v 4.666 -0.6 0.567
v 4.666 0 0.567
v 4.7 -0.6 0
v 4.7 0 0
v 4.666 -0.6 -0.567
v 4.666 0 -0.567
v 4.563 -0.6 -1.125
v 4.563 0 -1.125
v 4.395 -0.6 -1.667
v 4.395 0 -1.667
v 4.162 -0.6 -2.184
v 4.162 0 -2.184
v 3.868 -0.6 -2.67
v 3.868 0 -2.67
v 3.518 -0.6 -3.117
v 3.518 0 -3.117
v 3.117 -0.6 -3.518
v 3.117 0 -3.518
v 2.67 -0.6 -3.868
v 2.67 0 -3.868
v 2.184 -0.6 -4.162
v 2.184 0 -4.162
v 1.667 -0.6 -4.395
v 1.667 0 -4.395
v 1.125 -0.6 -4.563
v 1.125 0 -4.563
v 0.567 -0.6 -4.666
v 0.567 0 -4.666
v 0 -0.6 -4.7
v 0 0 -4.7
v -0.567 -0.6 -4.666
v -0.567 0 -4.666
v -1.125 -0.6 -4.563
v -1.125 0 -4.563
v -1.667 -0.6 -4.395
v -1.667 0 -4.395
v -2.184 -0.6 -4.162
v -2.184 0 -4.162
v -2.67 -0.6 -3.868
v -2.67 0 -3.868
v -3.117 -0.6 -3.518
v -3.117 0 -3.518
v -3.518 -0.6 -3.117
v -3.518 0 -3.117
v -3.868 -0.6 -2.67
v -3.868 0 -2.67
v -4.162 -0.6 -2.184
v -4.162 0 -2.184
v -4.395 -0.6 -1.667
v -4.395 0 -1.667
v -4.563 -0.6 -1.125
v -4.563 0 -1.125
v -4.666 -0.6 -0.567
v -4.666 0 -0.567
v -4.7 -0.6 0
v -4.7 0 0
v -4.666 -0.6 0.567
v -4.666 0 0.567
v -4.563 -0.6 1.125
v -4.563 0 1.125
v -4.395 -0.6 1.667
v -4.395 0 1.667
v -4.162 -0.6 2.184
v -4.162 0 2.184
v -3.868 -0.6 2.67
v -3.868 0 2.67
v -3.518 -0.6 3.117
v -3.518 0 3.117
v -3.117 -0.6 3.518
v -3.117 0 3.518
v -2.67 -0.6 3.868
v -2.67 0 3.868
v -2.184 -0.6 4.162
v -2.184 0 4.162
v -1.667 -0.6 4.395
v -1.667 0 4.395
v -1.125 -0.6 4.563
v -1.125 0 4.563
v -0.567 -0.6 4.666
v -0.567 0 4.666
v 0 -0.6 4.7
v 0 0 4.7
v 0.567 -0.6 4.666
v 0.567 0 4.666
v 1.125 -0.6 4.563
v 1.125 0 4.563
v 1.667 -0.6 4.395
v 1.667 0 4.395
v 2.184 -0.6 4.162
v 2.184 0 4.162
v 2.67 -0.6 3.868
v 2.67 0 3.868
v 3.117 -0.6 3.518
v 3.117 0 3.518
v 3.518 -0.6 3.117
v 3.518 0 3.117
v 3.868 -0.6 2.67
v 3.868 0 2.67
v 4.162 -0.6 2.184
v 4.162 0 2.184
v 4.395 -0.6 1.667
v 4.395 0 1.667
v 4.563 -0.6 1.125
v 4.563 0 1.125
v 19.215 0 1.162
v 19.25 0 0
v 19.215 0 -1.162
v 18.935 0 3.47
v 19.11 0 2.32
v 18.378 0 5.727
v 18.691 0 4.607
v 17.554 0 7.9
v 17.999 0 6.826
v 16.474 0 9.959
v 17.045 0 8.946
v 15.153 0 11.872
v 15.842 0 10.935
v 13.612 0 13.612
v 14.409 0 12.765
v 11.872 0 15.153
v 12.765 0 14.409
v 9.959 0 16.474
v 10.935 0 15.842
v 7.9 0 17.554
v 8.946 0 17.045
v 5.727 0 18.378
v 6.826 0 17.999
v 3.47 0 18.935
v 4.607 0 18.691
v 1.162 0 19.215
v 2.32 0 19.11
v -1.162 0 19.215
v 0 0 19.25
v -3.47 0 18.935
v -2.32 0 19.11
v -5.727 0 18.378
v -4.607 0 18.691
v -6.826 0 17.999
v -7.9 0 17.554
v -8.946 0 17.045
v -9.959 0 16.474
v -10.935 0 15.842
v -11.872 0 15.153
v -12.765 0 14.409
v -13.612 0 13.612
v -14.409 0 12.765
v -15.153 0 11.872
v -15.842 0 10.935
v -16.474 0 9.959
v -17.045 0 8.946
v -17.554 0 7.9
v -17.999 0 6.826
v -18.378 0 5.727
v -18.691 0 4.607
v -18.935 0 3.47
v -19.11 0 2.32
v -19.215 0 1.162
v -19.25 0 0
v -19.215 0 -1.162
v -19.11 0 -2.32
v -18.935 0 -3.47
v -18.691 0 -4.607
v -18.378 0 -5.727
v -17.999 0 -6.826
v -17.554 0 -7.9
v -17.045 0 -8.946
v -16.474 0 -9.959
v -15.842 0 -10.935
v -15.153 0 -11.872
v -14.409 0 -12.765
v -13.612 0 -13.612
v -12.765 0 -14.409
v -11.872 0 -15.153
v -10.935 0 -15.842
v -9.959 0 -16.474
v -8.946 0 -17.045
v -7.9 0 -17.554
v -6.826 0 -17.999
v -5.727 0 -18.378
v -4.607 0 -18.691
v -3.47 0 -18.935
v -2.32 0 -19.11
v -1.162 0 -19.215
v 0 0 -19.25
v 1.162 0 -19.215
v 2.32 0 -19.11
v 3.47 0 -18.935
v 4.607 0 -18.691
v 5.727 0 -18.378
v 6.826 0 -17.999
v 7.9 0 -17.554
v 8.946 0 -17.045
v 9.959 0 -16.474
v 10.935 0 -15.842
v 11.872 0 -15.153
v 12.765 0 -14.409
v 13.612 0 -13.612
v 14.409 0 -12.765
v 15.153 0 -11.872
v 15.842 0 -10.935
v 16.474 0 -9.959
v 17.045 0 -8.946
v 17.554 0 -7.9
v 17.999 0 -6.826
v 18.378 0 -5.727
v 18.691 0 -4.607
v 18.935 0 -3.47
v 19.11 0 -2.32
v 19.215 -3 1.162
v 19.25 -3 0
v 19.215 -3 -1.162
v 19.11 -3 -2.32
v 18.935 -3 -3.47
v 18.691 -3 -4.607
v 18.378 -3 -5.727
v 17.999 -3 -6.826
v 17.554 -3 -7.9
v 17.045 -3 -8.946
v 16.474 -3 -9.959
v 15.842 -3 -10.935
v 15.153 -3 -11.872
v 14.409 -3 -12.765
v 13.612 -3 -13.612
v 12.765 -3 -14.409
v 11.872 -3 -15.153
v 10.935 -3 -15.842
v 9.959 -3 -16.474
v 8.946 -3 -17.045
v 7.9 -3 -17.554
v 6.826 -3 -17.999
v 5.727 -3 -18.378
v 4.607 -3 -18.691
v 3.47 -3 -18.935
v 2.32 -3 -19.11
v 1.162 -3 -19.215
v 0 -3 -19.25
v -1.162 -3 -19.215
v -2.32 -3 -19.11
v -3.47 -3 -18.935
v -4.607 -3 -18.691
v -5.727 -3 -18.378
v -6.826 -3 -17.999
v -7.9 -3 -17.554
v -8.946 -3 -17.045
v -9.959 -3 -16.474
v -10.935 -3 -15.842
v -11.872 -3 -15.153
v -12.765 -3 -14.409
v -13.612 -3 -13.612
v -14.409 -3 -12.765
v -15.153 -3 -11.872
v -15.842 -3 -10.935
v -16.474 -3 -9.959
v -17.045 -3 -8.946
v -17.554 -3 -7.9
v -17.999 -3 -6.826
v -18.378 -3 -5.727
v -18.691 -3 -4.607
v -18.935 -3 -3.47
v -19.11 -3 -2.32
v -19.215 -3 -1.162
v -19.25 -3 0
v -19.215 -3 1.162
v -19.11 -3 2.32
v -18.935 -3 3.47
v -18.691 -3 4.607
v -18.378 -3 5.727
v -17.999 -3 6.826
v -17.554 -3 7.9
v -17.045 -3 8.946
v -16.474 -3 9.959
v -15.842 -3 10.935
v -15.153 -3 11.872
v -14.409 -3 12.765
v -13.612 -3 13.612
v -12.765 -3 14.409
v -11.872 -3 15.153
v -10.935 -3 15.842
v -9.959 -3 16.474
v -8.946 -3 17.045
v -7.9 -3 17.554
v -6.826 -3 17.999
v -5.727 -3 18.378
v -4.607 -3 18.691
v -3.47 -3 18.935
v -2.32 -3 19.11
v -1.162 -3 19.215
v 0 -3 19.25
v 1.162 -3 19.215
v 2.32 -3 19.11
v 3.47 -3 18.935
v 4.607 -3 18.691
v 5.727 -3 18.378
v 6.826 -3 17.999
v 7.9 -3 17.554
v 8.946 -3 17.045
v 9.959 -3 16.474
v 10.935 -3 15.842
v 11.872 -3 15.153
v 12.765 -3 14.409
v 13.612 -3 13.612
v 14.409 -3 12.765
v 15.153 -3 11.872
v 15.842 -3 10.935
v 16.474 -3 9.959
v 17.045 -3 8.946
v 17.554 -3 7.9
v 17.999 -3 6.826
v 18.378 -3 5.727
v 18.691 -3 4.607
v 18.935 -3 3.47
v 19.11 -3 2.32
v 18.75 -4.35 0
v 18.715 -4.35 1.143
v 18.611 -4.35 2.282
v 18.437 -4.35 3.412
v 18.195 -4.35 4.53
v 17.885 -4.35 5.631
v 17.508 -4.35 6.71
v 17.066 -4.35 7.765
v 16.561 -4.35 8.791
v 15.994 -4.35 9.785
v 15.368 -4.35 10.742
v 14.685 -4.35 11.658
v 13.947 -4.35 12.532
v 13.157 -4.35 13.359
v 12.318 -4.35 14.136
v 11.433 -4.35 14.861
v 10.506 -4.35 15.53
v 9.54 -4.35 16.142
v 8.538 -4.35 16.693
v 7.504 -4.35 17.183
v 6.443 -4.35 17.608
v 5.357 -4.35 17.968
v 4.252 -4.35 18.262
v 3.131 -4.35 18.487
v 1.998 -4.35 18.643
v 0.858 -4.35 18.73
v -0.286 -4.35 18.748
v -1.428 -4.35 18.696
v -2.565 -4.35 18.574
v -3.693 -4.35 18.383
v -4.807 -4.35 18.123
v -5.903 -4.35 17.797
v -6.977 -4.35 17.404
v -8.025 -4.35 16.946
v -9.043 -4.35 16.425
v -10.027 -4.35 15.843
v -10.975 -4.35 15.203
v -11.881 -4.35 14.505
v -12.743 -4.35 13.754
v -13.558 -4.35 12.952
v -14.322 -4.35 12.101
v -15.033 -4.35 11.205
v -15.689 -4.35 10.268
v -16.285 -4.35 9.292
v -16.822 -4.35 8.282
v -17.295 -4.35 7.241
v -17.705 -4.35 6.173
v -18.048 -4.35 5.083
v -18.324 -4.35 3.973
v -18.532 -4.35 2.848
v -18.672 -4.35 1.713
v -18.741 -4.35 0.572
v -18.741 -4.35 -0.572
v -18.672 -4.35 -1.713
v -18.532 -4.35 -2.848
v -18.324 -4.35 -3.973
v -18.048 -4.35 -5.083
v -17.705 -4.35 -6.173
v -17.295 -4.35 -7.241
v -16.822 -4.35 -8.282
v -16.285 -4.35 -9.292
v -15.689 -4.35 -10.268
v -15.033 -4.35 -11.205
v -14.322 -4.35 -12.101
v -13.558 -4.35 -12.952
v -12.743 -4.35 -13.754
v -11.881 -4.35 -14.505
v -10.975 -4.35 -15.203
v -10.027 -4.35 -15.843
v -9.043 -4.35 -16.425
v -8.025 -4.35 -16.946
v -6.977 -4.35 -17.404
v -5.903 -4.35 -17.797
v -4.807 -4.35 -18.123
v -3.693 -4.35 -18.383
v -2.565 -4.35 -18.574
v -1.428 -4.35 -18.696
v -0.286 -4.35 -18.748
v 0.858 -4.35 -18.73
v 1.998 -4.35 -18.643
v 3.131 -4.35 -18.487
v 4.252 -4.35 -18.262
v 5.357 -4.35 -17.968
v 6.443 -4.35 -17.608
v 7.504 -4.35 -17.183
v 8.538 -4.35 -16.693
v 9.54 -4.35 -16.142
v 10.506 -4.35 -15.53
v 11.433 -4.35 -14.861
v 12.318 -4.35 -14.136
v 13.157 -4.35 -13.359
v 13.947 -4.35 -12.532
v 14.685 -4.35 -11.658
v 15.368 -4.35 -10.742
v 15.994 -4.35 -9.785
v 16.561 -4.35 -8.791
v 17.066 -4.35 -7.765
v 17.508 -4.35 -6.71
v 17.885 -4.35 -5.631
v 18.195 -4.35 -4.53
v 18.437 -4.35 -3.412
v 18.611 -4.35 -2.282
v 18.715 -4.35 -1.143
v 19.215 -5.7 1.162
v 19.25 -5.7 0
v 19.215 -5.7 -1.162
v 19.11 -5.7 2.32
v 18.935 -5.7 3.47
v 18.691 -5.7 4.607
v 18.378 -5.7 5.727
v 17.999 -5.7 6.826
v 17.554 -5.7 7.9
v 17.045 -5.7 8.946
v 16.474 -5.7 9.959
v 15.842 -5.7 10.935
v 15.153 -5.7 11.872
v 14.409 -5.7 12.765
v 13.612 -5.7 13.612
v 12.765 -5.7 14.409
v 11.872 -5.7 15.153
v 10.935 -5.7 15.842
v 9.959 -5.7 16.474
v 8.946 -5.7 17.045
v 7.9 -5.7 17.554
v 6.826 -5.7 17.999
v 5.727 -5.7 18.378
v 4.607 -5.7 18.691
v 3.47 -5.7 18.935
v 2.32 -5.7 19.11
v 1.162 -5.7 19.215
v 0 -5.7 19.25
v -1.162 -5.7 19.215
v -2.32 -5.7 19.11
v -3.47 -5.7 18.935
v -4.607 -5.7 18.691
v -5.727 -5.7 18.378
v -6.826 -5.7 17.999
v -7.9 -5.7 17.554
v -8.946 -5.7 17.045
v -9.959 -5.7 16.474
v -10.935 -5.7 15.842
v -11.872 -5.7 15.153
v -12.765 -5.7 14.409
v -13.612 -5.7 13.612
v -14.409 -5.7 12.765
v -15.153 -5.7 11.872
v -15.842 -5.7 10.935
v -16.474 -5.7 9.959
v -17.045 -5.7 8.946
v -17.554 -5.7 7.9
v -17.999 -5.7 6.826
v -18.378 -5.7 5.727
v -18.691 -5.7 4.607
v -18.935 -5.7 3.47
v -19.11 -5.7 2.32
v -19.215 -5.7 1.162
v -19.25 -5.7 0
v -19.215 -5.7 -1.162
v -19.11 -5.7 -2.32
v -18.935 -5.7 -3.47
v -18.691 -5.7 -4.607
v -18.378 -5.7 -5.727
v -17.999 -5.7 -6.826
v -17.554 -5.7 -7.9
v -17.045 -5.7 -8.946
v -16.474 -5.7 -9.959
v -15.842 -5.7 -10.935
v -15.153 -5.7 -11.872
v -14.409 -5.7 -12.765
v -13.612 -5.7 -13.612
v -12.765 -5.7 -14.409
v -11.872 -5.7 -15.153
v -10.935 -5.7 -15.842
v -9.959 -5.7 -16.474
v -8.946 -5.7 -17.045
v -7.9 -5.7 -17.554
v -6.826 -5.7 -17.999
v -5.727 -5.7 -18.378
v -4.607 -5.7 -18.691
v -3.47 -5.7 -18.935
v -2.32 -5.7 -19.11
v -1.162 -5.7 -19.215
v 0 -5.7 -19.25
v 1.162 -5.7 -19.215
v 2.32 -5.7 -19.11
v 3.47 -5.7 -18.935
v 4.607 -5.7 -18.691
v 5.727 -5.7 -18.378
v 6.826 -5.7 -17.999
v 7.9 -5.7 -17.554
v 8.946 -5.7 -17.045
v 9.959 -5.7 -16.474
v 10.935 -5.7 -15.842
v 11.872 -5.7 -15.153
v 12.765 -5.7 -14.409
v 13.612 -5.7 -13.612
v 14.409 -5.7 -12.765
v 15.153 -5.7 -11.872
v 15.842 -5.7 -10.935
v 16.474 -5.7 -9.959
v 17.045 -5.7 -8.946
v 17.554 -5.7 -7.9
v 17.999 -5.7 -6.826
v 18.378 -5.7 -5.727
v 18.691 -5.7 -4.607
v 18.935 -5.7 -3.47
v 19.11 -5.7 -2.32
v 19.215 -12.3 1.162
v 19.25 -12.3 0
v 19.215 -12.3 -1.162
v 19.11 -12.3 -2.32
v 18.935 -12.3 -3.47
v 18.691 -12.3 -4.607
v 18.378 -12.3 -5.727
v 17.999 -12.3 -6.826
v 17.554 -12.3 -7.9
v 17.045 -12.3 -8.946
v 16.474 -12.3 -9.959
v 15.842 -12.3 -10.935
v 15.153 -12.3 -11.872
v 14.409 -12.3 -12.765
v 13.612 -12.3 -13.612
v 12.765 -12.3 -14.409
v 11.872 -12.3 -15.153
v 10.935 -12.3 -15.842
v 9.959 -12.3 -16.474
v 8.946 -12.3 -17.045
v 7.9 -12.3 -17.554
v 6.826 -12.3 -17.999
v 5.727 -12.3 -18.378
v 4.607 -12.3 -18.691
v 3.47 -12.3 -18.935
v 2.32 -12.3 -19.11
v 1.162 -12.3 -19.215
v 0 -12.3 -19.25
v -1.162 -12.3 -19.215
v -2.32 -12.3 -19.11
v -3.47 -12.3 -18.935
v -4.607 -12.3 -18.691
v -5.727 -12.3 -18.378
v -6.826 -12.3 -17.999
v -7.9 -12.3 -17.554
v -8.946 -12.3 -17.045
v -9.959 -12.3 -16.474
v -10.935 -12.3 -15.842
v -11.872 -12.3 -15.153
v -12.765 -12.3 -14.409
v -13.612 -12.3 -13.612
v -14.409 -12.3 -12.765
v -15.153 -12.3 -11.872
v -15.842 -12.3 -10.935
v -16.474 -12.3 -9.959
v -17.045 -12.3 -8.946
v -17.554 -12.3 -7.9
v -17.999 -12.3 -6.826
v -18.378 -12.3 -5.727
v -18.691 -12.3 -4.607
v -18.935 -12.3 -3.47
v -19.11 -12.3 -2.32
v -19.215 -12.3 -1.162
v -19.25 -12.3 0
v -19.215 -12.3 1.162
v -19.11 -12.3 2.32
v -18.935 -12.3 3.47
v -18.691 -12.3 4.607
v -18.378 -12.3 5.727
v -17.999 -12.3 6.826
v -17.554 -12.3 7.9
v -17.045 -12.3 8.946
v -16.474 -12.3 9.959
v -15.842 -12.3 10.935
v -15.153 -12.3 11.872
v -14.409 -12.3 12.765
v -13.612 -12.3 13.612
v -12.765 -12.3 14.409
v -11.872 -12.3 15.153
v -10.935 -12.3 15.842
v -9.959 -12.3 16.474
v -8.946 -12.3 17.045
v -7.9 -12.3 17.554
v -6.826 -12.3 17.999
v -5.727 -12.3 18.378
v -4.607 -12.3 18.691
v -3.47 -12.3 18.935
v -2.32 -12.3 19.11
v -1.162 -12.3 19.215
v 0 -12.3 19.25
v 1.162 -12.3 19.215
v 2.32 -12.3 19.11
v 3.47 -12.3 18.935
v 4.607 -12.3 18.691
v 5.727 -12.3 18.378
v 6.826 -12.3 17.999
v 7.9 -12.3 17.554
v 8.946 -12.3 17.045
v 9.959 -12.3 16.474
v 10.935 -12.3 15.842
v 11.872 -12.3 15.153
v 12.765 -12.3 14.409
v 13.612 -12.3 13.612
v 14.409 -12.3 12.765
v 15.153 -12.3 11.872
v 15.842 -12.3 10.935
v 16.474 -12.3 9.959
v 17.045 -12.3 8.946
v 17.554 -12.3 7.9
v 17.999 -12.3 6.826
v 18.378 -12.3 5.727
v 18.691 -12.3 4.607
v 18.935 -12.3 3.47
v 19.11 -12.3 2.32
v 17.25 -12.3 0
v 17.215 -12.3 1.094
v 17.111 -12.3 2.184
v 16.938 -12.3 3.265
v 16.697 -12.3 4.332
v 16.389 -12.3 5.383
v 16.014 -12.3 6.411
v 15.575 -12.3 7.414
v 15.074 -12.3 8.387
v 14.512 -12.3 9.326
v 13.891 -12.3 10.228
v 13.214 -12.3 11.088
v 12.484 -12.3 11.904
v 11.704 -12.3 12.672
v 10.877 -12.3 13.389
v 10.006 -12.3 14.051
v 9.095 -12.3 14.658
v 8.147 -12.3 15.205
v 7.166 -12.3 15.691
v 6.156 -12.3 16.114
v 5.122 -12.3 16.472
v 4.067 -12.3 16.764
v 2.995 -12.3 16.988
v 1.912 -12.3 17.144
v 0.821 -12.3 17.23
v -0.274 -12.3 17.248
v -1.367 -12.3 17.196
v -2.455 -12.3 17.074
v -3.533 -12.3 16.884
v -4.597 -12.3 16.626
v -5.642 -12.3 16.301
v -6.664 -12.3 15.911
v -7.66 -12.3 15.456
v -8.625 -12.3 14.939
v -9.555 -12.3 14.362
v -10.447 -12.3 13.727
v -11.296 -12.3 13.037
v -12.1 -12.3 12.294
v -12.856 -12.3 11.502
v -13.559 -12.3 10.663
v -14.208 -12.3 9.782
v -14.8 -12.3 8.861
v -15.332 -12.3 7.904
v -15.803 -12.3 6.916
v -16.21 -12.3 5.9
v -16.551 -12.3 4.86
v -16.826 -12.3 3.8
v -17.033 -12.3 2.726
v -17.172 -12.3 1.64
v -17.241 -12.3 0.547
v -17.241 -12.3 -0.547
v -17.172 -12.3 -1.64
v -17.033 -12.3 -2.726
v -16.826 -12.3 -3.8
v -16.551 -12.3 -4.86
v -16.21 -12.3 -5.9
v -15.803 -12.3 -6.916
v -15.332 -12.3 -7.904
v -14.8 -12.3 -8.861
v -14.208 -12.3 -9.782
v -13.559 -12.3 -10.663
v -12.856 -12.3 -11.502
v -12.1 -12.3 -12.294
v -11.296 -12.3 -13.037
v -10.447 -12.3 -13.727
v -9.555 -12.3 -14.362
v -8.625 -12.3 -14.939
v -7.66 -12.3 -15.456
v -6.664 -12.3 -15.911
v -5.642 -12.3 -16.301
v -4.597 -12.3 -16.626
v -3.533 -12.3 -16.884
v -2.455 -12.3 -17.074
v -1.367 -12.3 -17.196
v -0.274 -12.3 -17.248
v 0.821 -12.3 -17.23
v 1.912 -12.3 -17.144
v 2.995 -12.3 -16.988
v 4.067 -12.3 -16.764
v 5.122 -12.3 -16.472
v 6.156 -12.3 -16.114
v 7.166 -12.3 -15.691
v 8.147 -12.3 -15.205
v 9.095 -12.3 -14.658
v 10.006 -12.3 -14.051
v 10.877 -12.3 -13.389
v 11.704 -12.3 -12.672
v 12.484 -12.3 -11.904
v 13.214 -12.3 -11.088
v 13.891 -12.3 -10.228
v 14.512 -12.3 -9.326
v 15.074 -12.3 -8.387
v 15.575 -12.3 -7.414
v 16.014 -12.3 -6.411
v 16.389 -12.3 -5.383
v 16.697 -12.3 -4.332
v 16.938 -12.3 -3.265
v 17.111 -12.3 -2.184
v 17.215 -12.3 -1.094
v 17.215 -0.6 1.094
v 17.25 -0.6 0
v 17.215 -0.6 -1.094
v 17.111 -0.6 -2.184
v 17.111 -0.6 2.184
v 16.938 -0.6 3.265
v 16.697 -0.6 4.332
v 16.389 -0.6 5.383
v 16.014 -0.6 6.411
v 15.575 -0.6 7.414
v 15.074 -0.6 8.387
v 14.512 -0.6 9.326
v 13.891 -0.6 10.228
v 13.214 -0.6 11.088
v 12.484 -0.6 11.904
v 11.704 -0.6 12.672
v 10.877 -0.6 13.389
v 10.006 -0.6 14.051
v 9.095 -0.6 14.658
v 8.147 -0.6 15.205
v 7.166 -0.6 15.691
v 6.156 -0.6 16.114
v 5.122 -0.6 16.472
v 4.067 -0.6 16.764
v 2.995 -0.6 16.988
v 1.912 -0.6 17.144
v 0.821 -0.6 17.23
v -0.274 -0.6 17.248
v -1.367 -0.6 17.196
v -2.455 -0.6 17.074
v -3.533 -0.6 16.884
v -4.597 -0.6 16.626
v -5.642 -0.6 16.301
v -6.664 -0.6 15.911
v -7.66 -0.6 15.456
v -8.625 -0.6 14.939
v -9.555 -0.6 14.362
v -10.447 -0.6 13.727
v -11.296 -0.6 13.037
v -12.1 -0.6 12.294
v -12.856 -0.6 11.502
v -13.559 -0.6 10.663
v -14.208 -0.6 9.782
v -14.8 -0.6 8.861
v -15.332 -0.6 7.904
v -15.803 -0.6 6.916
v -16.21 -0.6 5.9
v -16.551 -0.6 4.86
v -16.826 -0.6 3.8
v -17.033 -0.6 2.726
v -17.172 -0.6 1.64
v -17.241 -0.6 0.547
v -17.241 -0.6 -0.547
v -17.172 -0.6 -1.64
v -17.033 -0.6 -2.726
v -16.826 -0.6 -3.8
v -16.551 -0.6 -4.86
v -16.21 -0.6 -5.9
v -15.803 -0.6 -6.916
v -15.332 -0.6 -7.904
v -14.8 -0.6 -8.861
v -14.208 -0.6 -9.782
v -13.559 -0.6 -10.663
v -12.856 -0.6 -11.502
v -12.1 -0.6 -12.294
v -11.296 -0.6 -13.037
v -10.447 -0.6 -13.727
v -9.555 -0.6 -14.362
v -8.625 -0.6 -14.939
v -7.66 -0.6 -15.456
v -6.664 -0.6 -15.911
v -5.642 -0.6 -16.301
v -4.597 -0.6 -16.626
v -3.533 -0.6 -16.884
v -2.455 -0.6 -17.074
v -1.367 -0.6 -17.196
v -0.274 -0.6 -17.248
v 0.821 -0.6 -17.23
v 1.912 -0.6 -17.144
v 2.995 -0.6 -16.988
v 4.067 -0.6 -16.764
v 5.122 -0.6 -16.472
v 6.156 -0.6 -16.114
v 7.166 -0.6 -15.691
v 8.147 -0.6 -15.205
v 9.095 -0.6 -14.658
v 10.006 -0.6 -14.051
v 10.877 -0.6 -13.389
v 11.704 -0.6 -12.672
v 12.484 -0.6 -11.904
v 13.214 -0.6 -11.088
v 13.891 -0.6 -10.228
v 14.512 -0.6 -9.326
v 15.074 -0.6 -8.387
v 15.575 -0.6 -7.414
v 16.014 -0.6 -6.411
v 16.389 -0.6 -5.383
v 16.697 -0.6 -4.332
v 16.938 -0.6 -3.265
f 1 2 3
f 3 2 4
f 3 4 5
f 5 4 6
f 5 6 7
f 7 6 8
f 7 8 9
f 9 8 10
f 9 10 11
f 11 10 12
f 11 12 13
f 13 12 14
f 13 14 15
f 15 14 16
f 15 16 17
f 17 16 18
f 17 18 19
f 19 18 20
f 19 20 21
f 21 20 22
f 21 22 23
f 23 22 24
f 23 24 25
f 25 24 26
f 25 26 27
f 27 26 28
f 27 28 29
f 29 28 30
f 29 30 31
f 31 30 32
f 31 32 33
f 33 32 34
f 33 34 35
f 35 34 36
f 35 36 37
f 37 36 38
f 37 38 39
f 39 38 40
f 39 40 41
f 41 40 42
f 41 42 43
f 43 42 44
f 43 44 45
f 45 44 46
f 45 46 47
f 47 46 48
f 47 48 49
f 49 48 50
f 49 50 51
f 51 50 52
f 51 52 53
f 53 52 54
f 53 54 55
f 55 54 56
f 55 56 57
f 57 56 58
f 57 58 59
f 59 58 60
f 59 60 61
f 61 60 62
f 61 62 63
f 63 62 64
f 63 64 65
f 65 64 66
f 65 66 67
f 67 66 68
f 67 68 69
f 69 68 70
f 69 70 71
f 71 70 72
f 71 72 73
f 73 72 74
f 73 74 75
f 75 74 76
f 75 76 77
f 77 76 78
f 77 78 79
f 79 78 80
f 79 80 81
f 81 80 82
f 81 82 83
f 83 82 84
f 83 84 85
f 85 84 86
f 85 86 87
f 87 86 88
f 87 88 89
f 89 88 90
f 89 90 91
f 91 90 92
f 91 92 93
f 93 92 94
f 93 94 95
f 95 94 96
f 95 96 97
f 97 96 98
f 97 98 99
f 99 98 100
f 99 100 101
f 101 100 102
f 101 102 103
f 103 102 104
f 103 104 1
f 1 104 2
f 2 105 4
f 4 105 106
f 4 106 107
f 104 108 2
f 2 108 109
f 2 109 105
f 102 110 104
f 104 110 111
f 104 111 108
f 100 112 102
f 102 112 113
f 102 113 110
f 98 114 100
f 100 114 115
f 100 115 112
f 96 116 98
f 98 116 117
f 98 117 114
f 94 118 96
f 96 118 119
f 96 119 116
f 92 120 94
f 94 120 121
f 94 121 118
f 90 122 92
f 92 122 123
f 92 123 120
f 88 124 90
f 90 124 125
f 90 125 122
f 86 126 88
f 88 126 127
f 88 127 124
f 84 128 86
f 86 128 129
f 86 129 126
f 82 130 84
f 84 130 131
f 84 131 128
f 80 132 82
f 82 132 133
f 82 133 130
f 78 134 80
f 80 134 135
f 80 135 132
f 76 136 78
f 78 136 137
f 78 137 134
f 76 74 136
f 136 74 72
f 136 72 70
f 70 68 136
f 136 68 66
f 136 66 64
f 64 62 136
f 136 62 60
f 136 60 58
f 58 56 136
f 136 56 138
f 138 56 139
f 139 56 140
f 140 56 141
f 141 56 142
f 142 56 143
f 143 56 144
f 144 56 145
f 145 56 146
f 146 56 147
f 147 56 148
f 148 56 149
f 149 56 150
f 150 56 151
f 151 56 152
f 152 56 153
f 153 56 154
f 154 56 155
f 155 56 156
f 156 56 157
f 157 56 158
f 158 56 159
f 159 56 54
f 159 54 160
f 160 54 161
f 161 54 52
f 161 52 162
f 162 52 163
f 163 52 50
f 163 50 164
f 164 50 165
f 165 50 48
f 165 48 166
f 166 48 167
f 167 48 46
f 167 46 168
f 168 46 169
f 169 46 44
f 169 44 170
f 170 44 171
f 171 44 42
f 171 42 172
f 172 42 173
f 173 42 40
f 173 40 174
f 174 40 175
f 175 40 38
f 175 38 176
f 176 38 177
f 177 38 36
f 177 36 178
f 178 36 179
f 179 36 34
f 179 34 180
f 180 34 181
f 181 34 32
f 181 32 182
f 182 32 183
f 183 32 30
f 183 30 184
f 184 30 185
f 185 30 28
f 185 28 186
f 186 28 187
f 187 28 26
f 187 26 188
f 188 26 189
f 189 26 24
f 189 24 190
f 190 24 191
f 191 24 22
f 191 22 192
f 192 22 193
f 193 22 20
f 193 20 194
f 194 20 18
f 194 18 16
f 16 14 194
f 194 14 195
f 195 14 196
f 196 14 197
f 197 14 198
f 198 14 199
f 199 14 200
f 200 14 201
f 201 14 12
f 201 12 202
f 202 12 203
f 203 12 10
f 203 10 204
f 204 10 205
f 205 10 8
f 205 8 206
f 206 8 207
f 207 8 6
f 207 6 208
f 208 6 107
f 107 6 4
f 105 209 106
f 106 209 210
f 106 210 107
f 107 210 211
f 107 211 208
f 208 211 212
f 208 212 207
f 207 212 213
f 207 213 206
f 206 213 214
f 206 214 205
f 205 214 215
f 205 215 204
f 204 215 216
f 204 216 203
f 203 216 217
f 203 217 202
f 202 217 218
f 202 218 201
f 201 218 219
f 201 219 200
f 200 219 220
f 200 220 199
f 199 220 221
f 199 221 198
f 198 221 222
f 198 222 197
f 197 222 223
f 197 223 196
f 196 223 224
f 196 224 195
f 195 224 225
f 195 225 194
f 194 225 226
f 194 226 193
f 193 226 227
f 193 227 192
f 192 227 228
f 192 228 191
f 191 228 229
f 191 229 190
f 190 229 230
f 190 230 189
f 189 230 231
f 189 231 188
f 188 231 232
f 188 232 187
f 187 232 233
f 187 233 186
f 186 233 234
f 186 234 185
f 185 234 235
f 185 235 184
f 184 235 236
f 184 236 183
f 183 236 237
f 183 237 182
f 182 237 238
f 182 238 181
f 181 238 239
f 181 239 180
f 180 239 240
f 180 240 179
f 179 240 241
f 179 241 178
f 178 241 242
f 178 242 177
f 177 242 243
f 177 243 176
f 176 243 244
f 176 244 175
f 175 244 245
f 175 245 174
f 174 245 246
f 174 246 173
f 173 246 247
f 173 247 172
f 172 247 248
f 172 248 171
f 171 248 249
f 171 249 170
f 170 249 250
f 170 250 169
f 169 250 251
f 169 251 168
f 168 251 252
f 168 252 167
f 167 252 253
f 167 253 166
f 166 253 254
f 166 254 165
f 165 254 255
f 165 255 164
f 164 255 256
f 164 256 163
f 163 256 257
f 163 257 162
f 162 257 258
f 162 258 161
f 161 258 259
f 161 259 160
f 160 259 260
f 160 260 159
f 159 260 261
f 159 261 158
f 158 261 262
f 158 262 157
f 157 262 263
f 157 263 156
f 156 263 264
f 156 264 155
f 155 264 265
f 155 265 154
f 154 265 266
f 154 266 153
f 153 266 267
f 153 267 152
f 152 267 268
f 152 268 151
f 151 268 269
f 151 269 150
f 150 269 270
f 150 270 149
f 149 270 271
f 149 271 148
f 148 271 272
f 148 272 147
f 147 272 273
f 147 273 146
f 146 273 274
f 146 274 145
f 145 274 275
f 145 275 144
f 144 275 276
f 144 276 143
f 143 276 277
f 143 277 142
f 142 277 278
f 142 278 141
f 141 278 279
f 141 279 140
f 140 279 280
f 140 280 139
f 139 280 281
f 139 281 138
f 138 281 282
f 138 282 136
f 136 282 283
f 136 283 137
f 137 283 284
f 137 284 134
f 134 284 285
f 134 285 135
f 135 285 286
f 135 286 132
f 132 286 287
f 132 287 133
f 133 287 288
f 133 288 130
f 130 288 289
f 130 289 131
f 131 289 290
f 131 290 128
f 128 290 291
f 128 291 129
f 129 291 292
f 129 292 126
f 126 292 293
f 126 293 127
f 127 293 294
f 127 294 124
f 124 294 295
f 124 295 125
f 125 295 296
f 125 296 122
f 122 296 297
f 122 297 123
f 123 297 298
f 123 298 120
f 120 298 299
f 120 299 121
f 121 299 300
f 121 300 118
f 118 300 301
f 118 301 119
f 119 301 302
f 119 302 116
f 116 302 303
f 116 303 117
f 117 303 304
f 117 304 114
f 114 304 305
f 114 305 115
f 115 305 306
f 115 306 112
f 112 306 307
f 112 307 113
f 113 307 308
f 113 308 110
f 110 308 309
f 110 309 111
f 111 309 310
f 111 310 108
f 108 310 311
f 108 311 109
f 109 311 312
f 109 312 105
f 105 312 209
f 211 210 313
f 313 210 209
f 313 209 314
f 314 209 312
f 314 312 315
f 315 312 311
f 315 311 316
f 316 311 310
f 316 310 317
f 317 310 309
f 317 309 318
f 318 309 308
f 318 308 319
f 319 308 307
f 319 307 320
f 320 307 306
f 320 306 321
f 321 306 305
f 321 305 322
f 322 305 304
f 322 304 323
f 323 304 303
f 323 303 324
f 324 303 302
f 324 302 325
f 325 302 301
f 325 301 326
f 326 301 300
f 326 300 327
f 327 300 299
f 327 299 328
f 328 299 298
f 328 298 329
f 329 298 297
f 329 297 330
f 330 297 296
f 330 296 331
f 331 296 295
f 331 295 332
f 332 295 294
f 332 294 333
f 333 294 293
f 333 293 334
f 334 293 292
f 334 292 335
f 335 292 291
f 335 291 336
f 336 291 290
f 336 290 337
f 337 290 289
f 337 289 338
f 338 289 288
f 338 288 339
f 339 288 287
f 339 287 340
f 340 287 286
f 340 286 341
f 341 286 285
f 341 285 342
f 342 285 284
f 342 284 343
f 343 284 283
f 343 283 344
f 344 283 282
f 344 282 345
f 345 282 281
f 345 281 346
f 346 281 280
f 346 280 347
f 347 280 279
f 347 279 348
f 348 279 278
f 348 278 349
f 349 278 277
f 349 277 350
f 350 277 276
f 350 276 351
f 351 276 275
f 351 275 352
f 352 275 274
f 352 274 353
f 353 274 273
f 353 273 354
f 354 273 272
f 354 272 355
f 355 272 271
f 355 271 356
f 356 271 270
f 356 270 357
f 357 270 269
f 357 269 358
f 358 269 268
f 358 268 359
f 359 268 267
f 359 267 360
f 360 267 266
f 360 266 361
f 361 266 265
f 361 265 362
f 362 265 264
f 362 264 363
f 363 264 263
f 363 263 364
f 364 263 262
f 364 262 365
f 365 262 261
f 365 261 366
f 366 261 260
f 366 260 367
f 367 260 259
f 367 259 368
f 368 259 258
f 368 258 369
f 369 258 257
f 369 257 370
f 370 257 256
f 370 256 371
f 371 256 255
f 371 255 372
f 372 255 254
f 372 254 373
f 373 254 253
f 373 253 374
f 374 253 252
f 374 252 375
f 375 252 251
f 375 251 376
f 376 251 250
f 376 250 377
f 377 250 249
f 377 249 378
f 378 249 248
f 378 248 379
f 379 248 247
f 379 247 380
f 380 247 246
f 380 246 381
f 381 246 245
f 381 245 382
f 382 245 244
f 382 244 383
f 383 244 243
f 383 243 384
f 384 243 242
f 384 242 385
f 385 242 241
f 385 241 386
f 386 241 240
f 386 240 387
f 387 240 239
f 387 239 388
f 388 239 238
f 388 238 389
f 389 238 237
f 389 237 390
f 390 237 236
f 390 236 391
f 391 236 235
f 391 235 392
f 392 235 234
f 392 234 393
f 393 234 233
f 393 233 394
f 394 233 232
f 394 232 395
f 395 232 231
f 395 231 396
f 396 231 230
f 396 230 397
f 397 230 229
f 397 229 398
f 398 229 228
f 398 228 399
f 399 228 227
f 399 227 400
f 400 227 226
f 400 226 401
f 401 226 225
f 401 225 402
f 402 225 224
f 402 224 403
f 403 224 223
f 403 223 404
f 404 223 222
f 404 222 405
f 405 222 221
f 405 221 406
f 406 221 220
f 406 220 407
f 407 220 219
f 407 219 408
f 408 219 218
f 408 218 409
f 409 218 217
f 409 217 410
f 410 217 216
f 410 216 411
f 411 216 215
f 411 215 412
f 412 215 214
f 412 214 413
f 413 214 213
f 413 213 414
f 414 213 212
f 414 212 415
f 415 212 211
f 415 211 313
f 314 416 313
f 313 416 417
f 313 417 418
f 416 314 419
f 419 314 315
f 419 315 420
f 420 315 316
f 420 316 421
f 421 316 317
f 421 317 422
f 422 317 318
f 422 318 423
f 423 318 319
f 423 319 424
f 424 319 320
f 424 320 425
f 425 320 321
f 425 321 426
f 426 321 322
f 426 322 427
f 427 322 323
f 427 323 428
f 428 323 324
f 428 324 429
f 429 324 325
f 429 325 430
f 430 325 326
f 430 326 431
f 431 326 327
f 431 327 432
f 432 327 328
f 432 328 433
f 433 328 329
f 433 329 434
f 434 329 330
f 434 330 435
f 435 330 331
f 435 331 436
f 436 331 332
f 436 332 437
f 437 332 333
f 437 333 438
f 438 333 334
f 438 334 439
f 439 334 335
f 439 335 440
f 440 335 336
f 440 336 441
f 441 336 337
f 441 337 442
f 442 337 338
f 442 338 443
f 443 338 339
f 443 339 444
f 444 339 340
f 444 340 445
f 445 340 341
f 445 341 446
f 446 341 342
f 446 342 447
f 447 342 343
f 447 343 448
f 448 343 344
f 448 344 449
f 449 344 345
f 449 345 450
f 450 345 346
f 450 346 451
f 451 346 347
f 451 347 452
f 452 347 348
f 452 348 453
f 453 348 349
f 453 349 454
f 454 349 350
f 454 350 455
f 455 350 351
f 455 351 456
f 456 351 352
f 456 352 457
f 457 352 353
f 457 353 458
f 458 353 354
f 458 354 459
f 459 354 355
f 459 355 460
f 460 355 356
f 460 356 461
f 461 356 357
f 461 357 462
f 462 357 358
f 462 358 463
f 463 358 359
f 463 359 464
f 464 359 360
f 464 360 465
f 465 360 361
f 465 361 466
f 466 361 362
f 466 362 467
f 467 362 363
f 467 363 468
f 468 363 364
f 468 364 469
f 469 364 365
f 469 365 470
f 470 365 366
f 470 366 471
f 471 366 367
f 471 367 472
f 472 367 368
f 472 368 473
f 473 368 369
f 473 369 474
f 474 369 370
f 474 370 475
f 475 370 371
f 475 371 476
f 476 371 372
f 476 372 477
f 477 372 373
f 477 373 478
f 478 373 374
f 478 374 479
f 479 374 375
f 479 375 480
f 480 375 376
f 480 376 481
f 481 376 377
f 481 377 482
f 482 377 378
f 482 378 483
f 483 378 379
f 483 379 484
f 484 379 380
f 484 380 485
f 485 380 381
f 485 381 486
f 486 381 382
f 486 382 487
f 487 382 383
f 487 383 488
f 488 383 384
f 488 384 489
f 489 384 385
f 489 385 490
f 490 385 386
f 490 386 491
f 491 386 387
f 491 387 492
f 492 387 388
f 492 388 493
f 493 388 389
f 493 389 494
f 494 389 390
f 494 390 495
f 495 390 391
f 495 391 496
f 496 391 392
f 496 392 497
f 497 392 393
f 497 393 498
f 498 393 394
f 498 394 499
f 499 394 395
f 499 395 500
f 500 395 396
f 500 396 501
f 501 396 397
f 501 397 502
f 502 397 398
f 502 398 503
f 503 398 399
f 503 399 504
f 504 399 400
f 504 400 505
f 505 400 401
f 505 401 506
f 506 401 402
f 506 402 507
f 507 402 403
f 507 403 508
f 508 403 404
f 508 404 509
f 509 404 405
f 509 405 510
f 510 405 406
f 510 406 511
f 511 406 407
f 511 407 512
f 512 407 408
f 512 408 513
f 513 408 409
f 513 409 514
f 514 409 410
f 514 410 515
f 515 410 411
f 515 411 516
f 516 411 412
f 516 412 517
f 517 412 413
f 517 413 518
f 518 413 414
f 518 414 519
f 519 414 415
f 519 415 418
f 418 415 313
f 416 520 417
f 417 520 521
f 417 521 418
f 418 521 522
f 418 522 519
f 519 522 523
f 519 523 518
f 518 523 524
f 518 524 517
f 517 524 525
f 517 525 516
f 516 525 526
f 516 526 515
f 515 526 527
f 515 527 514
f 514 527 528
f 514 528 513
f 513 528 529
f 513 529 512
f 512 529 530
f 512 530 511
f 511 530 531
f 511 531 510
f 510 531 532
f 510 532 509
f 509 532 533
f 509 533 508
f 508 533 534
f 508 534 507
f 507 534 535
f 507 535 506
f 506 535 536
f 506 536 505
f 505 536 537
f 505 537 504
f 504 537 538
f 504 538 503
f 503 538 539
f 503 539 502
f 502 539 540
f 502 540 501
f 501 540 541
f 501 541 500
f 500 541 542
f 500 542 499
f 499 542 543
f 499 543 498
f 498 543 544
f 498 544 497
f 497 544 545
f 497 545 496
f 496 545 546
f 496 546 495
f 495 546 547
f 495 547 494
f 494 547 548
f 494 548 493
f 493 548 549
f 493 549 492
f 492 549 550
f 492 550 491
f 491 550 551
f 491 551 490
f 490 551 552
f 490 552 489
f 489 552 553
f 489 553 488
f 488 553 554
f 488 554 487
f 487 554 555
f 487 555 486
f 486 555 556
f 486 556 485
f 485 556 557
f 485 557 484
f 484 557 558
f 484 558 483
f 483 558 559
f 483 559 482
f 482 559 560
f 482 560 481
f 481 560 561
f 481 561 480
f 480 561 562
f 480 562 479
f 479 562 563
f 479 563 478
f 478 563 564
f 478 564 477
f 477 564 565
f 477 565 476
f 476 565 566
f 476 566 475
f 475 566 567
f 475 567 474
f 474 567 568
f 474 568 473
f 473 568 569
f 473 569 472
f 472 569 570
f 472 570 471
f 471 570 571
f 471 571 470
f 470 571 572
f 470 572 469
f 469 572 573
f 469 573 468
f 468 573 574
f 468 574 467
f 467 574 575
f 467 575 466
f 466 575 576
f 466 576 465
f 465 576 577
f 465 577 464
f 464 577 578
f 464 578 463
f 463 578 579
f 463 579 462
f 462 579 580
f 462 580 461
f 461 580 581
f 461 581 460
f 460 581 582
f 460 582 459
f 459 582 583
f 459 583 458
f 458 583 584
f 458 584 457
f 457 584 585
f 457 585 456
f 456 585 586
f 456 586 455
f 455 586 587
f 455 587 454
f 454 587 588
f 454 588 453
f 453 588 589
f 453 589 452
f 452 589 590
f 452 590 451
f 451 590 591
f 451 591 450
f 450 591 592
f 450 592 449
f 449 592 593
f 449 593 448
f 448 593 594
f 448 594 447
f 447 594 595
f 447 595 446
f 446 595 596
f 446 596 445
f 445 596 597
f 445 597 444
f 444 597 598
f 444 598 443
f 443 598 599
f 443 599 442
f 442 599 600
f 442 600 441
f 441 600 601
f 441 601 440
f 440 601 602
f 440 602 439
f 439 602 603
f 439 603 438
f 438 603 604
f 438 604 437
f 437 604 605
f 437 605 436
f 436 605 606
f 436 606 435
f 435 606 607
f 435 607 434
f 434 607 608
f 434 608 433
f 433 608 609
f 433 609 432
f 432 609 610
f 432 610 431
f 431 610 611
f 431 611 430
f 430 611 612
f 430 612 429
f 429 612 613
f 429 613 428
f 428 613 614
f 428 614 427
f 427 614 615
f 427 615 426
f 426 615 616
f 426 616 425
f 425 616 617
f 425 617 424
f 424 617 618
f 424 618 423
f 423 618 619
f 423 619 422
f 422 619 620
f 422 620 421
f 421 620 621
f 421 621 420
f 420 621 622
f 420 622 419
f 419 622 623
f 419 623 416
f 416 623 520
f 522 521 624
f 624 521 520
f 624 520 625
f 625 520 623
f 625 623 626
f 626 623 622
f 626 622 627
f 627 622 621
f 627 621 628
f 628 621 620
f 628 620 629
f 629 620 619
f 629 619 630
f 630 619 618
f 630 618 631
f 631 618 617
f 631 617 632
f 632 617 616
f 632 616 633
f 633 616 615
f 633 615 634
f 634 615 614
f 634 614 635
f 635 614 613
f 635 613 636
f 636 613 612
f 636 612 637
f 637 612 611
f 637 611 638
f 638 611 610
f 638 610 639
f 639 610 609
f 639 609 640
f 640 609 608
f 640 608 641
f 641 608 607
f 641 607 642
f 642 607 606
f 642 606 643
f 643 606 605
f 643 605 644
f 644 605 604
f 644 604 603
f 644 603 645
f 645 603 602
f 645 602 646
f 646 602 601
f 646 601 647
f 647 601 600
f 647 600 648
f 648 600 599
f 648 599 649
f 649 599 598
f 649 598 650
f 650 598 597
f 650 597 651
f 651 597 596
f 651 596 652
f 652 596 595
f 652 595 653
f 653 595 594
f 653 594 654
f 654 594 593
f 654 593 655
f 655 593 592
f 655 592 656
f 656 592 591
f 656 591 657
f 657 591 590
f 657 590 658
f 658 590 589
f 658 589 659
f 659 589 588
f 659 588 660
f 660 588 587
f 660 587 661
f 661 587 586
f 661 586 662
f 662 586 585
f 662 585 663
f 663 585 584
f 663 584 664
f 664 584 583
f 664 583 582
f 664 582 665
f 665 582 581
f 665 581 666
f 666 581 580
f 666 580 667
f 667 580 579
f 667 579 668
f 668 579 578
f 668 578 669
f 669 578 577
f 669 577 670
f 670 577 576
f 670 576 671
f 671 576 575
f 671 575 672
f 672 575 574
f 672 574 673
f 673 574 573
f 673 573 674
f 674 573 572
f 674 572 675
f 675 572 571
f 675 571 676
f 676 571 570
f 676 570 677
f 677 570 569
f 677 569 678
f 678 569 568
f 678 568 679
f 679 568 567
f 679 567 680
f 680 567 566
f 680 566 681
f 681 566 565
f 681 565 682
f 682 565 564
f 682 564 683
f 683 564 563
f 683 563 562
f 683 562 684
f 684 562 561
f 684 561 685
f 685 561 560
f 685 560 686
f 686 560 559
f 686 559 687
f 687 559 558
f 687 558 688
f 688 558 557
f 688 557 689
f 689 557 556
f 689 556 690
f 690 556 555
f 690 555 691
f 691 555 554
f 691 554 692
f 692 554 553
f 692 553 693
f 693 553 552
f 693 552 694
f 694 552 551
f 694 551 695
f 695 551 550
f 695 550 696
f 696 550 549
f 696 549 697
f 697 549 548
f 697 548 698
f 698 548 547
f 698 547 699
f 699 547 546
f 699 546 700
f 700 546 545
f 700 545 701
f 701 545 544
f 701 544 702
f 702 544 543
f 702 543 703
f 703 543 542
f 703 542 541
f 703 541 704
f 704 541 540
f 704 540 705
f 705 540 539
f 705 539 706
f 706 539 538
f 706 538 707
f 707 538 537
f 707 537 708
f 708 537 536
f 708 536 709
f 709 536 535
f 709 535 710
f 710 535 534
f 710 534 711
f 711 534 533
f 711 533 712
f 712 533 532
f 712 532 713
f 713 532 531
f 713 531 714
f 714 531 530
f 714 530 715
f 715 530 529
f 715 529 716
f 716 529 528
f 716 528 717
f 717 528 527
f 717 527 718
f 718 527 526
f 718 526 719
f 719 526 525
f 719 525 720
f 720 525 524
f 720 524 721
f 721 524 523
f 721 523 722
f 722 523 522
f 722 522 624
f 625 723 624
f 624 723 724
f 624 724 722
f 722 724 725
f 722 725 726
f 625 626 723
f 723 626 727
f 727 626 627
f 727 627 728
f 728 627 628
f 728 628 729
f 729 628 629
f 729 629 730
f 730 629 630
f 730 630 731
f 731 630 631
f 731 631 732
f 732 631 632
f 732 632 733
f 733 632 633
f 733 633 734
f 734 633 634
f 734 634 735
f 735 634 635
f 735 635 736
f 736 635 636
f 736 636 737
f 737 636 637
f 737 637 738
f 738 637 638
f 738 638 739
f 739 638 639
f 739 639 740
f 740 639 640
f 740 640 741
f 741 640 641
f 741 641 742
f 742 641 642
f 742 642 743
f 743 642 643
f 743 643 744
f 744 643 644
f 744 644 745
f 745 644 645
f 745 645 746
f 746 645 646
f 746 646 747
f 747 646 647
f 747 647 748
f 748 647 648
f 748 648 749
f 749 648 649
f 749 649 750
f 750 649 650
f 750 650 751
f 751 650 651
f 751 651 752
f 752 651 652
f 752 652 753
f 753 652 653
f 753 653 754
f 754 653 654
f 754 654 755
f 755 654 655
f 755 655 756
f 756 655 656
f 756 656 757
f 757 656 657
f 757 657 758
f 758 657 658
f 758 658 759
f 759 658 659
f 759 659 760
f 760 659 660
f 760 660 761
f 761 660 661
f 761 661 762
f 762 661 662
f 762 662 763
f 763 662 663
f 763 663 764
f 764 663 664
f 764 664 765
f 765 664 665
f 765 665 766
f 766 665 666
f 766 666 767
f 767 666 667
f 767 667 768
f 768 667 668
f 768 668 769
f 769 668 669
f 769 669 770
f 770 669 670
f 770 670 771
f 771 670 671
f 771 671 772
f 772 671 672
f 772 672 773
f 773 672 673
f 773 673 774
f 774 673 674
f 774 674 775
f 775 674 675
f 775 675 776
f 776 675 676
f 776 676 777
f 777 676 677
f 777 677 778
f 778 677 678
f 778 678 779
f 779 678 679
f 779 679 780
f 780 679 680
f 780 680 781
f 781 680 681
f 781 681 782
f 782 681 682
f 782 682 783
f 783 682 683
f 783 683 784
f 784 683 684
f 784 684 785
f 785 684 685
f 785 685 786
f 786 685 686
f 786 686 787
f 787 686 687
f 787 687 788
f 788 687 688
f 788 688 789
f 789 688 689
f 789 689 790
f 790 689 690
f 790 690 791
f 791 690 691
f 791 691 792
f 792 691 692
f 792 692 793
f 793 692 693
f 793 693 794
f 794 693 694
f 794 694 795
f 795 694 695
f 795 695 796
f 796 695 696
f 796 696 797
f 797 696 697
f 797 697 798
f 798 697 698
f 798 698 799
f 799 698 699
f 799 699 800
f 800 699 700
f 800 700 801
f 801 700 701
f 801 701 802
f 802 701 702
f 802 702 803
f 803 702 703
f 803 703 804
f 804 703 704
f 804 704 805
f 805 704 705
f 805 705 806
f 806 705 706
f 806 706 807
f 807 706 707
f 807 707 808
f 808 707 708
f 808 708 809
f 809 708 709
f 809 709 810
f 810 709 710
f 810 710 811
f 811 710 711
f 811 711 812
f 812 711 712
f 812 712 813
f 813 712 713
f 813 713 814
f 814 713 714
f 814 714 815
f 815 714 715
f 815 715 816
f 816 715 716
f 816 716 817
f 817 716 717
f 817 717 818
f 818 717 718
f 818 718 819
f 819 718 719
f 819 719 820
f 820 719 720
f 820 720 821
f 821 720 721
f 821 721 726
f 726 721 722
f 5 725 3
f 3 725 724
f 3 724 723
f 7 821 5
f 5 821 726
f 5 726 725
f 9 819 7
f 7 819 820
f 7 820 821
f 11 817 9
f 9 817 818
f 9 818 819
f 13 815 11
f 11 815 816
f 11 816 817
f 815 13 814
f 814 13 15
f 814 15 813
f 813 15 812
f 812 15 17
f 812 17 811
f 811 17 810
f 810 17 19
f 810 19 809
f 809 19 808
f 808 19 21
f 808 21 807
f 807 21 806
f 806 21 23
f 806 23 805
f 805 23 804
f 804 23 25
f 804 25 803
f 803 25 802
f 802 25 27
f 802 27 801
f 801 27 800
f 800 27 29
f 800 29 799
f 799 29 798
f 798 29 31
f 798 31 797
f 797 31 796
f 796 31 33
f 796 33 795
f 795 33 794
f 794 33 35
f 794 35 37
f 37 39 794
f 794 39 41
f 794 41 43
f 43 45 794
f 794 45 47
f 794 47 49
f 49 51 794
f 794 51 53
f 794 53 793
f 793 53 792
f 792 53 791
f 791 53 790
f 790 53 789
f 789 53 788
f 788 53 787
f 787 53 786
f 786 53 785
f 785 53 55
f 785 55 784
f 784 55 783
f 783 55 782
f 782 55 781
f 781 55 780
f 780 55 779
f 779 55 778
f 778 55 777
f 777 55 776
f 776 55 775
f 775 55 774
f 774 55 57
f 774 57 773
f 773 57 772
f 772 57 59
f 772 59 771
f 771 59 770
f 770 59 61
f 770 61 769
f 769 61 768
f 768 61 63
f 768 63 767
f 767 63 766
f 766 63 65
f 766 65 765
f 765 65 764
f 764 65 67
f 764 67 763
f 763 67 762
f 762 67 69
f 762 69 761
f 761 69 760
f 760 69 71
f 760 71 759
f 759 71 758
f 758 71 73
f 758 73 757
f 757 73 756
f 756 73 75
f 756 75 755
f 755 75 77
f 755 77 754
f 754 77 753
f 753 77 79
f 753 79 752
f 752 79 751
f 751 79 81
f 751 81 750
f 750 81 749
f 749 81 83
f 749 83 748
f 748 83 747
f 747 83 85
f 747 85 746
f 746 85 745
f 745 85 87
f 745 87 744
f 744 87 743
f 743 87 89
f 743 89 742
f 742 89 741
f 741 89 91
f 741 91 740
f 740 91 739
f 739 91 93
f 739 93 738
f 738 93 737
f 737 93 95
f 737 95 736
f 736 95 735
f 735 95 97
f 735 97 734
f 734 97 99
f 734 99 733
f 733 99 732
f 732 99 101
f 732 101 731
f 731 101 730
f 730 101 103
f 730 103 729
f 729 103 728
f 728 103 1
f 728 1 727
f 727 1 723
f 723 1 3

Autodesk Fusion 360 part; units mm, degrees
sketch "Sketch1" plane through (0, 0, 0) normal (0, 0, 1) x (1, 0, 0)
  line L0 (0, 0) -> (19.25, 0)
  line L1 (19.25, 0) -> (19.25, -3)
  line L2 (19.25, -3) -> (19.25, -5.7)
  line L3 (19.25, -5.7) -> (19.25, -12.3)
  line L4 (19.25, -12.3) -> (17.25, -12.3)
  line L5 (17.25, -12.3) -> (17.25, -0.6)
  line L6 (19.25, -3) -> (19.25, -4.35) construction
  line L7 (19.25, -4.35) -> (18.75, -4.35) construction
  line L8 (19.25, -3) -> (18.75, -4.35)
  line L9 (18.75, -4.35) -> (19.25, -5.7)
  line L10 (0, 0) -> (0, -0.6)
  line L11 (0, -0.6) -> (17.25, -0.6)
  dimension "d1" = 19.25
  dimension "d2" = 3
  dimension "d4" = 2.7
  dimension "d5" = 6.6
  dimension "d6" = 2
  dimension "d7" = 11.7
  dimension "d8" = 1.35
  dimension "d9" = 0.5
  dimension "d10" = 17.25
  dimension "d11" = 0.6
  dimension "d12" = 19.25
revolve "Revolve1" add sketch "Sketch1" angle 360 about axis through (0, 0, 0) along (0, -1, 0) contours L0 L1 L3 L4 L5 L8 L9 L10 L11
sketch "Sketch2" plane through (0, 0, 0) normal (0, 1, 0) x (-1, 0, 0)
  circle A0 centre (0, 0) radius 19.25
  circle A1 centre (0, 0) radius 18.825
  circle A2 centre (0, 0) radius 4.7
  dimension "d14" = 38.5
  dimension "d15" = 37.65
  dimension "d16" = 9.4
extrude "Extrude1" cut sketch "Sketch2" against normal blind 3 contours A2
equation "d15 = d14 - 0.85 mm"
